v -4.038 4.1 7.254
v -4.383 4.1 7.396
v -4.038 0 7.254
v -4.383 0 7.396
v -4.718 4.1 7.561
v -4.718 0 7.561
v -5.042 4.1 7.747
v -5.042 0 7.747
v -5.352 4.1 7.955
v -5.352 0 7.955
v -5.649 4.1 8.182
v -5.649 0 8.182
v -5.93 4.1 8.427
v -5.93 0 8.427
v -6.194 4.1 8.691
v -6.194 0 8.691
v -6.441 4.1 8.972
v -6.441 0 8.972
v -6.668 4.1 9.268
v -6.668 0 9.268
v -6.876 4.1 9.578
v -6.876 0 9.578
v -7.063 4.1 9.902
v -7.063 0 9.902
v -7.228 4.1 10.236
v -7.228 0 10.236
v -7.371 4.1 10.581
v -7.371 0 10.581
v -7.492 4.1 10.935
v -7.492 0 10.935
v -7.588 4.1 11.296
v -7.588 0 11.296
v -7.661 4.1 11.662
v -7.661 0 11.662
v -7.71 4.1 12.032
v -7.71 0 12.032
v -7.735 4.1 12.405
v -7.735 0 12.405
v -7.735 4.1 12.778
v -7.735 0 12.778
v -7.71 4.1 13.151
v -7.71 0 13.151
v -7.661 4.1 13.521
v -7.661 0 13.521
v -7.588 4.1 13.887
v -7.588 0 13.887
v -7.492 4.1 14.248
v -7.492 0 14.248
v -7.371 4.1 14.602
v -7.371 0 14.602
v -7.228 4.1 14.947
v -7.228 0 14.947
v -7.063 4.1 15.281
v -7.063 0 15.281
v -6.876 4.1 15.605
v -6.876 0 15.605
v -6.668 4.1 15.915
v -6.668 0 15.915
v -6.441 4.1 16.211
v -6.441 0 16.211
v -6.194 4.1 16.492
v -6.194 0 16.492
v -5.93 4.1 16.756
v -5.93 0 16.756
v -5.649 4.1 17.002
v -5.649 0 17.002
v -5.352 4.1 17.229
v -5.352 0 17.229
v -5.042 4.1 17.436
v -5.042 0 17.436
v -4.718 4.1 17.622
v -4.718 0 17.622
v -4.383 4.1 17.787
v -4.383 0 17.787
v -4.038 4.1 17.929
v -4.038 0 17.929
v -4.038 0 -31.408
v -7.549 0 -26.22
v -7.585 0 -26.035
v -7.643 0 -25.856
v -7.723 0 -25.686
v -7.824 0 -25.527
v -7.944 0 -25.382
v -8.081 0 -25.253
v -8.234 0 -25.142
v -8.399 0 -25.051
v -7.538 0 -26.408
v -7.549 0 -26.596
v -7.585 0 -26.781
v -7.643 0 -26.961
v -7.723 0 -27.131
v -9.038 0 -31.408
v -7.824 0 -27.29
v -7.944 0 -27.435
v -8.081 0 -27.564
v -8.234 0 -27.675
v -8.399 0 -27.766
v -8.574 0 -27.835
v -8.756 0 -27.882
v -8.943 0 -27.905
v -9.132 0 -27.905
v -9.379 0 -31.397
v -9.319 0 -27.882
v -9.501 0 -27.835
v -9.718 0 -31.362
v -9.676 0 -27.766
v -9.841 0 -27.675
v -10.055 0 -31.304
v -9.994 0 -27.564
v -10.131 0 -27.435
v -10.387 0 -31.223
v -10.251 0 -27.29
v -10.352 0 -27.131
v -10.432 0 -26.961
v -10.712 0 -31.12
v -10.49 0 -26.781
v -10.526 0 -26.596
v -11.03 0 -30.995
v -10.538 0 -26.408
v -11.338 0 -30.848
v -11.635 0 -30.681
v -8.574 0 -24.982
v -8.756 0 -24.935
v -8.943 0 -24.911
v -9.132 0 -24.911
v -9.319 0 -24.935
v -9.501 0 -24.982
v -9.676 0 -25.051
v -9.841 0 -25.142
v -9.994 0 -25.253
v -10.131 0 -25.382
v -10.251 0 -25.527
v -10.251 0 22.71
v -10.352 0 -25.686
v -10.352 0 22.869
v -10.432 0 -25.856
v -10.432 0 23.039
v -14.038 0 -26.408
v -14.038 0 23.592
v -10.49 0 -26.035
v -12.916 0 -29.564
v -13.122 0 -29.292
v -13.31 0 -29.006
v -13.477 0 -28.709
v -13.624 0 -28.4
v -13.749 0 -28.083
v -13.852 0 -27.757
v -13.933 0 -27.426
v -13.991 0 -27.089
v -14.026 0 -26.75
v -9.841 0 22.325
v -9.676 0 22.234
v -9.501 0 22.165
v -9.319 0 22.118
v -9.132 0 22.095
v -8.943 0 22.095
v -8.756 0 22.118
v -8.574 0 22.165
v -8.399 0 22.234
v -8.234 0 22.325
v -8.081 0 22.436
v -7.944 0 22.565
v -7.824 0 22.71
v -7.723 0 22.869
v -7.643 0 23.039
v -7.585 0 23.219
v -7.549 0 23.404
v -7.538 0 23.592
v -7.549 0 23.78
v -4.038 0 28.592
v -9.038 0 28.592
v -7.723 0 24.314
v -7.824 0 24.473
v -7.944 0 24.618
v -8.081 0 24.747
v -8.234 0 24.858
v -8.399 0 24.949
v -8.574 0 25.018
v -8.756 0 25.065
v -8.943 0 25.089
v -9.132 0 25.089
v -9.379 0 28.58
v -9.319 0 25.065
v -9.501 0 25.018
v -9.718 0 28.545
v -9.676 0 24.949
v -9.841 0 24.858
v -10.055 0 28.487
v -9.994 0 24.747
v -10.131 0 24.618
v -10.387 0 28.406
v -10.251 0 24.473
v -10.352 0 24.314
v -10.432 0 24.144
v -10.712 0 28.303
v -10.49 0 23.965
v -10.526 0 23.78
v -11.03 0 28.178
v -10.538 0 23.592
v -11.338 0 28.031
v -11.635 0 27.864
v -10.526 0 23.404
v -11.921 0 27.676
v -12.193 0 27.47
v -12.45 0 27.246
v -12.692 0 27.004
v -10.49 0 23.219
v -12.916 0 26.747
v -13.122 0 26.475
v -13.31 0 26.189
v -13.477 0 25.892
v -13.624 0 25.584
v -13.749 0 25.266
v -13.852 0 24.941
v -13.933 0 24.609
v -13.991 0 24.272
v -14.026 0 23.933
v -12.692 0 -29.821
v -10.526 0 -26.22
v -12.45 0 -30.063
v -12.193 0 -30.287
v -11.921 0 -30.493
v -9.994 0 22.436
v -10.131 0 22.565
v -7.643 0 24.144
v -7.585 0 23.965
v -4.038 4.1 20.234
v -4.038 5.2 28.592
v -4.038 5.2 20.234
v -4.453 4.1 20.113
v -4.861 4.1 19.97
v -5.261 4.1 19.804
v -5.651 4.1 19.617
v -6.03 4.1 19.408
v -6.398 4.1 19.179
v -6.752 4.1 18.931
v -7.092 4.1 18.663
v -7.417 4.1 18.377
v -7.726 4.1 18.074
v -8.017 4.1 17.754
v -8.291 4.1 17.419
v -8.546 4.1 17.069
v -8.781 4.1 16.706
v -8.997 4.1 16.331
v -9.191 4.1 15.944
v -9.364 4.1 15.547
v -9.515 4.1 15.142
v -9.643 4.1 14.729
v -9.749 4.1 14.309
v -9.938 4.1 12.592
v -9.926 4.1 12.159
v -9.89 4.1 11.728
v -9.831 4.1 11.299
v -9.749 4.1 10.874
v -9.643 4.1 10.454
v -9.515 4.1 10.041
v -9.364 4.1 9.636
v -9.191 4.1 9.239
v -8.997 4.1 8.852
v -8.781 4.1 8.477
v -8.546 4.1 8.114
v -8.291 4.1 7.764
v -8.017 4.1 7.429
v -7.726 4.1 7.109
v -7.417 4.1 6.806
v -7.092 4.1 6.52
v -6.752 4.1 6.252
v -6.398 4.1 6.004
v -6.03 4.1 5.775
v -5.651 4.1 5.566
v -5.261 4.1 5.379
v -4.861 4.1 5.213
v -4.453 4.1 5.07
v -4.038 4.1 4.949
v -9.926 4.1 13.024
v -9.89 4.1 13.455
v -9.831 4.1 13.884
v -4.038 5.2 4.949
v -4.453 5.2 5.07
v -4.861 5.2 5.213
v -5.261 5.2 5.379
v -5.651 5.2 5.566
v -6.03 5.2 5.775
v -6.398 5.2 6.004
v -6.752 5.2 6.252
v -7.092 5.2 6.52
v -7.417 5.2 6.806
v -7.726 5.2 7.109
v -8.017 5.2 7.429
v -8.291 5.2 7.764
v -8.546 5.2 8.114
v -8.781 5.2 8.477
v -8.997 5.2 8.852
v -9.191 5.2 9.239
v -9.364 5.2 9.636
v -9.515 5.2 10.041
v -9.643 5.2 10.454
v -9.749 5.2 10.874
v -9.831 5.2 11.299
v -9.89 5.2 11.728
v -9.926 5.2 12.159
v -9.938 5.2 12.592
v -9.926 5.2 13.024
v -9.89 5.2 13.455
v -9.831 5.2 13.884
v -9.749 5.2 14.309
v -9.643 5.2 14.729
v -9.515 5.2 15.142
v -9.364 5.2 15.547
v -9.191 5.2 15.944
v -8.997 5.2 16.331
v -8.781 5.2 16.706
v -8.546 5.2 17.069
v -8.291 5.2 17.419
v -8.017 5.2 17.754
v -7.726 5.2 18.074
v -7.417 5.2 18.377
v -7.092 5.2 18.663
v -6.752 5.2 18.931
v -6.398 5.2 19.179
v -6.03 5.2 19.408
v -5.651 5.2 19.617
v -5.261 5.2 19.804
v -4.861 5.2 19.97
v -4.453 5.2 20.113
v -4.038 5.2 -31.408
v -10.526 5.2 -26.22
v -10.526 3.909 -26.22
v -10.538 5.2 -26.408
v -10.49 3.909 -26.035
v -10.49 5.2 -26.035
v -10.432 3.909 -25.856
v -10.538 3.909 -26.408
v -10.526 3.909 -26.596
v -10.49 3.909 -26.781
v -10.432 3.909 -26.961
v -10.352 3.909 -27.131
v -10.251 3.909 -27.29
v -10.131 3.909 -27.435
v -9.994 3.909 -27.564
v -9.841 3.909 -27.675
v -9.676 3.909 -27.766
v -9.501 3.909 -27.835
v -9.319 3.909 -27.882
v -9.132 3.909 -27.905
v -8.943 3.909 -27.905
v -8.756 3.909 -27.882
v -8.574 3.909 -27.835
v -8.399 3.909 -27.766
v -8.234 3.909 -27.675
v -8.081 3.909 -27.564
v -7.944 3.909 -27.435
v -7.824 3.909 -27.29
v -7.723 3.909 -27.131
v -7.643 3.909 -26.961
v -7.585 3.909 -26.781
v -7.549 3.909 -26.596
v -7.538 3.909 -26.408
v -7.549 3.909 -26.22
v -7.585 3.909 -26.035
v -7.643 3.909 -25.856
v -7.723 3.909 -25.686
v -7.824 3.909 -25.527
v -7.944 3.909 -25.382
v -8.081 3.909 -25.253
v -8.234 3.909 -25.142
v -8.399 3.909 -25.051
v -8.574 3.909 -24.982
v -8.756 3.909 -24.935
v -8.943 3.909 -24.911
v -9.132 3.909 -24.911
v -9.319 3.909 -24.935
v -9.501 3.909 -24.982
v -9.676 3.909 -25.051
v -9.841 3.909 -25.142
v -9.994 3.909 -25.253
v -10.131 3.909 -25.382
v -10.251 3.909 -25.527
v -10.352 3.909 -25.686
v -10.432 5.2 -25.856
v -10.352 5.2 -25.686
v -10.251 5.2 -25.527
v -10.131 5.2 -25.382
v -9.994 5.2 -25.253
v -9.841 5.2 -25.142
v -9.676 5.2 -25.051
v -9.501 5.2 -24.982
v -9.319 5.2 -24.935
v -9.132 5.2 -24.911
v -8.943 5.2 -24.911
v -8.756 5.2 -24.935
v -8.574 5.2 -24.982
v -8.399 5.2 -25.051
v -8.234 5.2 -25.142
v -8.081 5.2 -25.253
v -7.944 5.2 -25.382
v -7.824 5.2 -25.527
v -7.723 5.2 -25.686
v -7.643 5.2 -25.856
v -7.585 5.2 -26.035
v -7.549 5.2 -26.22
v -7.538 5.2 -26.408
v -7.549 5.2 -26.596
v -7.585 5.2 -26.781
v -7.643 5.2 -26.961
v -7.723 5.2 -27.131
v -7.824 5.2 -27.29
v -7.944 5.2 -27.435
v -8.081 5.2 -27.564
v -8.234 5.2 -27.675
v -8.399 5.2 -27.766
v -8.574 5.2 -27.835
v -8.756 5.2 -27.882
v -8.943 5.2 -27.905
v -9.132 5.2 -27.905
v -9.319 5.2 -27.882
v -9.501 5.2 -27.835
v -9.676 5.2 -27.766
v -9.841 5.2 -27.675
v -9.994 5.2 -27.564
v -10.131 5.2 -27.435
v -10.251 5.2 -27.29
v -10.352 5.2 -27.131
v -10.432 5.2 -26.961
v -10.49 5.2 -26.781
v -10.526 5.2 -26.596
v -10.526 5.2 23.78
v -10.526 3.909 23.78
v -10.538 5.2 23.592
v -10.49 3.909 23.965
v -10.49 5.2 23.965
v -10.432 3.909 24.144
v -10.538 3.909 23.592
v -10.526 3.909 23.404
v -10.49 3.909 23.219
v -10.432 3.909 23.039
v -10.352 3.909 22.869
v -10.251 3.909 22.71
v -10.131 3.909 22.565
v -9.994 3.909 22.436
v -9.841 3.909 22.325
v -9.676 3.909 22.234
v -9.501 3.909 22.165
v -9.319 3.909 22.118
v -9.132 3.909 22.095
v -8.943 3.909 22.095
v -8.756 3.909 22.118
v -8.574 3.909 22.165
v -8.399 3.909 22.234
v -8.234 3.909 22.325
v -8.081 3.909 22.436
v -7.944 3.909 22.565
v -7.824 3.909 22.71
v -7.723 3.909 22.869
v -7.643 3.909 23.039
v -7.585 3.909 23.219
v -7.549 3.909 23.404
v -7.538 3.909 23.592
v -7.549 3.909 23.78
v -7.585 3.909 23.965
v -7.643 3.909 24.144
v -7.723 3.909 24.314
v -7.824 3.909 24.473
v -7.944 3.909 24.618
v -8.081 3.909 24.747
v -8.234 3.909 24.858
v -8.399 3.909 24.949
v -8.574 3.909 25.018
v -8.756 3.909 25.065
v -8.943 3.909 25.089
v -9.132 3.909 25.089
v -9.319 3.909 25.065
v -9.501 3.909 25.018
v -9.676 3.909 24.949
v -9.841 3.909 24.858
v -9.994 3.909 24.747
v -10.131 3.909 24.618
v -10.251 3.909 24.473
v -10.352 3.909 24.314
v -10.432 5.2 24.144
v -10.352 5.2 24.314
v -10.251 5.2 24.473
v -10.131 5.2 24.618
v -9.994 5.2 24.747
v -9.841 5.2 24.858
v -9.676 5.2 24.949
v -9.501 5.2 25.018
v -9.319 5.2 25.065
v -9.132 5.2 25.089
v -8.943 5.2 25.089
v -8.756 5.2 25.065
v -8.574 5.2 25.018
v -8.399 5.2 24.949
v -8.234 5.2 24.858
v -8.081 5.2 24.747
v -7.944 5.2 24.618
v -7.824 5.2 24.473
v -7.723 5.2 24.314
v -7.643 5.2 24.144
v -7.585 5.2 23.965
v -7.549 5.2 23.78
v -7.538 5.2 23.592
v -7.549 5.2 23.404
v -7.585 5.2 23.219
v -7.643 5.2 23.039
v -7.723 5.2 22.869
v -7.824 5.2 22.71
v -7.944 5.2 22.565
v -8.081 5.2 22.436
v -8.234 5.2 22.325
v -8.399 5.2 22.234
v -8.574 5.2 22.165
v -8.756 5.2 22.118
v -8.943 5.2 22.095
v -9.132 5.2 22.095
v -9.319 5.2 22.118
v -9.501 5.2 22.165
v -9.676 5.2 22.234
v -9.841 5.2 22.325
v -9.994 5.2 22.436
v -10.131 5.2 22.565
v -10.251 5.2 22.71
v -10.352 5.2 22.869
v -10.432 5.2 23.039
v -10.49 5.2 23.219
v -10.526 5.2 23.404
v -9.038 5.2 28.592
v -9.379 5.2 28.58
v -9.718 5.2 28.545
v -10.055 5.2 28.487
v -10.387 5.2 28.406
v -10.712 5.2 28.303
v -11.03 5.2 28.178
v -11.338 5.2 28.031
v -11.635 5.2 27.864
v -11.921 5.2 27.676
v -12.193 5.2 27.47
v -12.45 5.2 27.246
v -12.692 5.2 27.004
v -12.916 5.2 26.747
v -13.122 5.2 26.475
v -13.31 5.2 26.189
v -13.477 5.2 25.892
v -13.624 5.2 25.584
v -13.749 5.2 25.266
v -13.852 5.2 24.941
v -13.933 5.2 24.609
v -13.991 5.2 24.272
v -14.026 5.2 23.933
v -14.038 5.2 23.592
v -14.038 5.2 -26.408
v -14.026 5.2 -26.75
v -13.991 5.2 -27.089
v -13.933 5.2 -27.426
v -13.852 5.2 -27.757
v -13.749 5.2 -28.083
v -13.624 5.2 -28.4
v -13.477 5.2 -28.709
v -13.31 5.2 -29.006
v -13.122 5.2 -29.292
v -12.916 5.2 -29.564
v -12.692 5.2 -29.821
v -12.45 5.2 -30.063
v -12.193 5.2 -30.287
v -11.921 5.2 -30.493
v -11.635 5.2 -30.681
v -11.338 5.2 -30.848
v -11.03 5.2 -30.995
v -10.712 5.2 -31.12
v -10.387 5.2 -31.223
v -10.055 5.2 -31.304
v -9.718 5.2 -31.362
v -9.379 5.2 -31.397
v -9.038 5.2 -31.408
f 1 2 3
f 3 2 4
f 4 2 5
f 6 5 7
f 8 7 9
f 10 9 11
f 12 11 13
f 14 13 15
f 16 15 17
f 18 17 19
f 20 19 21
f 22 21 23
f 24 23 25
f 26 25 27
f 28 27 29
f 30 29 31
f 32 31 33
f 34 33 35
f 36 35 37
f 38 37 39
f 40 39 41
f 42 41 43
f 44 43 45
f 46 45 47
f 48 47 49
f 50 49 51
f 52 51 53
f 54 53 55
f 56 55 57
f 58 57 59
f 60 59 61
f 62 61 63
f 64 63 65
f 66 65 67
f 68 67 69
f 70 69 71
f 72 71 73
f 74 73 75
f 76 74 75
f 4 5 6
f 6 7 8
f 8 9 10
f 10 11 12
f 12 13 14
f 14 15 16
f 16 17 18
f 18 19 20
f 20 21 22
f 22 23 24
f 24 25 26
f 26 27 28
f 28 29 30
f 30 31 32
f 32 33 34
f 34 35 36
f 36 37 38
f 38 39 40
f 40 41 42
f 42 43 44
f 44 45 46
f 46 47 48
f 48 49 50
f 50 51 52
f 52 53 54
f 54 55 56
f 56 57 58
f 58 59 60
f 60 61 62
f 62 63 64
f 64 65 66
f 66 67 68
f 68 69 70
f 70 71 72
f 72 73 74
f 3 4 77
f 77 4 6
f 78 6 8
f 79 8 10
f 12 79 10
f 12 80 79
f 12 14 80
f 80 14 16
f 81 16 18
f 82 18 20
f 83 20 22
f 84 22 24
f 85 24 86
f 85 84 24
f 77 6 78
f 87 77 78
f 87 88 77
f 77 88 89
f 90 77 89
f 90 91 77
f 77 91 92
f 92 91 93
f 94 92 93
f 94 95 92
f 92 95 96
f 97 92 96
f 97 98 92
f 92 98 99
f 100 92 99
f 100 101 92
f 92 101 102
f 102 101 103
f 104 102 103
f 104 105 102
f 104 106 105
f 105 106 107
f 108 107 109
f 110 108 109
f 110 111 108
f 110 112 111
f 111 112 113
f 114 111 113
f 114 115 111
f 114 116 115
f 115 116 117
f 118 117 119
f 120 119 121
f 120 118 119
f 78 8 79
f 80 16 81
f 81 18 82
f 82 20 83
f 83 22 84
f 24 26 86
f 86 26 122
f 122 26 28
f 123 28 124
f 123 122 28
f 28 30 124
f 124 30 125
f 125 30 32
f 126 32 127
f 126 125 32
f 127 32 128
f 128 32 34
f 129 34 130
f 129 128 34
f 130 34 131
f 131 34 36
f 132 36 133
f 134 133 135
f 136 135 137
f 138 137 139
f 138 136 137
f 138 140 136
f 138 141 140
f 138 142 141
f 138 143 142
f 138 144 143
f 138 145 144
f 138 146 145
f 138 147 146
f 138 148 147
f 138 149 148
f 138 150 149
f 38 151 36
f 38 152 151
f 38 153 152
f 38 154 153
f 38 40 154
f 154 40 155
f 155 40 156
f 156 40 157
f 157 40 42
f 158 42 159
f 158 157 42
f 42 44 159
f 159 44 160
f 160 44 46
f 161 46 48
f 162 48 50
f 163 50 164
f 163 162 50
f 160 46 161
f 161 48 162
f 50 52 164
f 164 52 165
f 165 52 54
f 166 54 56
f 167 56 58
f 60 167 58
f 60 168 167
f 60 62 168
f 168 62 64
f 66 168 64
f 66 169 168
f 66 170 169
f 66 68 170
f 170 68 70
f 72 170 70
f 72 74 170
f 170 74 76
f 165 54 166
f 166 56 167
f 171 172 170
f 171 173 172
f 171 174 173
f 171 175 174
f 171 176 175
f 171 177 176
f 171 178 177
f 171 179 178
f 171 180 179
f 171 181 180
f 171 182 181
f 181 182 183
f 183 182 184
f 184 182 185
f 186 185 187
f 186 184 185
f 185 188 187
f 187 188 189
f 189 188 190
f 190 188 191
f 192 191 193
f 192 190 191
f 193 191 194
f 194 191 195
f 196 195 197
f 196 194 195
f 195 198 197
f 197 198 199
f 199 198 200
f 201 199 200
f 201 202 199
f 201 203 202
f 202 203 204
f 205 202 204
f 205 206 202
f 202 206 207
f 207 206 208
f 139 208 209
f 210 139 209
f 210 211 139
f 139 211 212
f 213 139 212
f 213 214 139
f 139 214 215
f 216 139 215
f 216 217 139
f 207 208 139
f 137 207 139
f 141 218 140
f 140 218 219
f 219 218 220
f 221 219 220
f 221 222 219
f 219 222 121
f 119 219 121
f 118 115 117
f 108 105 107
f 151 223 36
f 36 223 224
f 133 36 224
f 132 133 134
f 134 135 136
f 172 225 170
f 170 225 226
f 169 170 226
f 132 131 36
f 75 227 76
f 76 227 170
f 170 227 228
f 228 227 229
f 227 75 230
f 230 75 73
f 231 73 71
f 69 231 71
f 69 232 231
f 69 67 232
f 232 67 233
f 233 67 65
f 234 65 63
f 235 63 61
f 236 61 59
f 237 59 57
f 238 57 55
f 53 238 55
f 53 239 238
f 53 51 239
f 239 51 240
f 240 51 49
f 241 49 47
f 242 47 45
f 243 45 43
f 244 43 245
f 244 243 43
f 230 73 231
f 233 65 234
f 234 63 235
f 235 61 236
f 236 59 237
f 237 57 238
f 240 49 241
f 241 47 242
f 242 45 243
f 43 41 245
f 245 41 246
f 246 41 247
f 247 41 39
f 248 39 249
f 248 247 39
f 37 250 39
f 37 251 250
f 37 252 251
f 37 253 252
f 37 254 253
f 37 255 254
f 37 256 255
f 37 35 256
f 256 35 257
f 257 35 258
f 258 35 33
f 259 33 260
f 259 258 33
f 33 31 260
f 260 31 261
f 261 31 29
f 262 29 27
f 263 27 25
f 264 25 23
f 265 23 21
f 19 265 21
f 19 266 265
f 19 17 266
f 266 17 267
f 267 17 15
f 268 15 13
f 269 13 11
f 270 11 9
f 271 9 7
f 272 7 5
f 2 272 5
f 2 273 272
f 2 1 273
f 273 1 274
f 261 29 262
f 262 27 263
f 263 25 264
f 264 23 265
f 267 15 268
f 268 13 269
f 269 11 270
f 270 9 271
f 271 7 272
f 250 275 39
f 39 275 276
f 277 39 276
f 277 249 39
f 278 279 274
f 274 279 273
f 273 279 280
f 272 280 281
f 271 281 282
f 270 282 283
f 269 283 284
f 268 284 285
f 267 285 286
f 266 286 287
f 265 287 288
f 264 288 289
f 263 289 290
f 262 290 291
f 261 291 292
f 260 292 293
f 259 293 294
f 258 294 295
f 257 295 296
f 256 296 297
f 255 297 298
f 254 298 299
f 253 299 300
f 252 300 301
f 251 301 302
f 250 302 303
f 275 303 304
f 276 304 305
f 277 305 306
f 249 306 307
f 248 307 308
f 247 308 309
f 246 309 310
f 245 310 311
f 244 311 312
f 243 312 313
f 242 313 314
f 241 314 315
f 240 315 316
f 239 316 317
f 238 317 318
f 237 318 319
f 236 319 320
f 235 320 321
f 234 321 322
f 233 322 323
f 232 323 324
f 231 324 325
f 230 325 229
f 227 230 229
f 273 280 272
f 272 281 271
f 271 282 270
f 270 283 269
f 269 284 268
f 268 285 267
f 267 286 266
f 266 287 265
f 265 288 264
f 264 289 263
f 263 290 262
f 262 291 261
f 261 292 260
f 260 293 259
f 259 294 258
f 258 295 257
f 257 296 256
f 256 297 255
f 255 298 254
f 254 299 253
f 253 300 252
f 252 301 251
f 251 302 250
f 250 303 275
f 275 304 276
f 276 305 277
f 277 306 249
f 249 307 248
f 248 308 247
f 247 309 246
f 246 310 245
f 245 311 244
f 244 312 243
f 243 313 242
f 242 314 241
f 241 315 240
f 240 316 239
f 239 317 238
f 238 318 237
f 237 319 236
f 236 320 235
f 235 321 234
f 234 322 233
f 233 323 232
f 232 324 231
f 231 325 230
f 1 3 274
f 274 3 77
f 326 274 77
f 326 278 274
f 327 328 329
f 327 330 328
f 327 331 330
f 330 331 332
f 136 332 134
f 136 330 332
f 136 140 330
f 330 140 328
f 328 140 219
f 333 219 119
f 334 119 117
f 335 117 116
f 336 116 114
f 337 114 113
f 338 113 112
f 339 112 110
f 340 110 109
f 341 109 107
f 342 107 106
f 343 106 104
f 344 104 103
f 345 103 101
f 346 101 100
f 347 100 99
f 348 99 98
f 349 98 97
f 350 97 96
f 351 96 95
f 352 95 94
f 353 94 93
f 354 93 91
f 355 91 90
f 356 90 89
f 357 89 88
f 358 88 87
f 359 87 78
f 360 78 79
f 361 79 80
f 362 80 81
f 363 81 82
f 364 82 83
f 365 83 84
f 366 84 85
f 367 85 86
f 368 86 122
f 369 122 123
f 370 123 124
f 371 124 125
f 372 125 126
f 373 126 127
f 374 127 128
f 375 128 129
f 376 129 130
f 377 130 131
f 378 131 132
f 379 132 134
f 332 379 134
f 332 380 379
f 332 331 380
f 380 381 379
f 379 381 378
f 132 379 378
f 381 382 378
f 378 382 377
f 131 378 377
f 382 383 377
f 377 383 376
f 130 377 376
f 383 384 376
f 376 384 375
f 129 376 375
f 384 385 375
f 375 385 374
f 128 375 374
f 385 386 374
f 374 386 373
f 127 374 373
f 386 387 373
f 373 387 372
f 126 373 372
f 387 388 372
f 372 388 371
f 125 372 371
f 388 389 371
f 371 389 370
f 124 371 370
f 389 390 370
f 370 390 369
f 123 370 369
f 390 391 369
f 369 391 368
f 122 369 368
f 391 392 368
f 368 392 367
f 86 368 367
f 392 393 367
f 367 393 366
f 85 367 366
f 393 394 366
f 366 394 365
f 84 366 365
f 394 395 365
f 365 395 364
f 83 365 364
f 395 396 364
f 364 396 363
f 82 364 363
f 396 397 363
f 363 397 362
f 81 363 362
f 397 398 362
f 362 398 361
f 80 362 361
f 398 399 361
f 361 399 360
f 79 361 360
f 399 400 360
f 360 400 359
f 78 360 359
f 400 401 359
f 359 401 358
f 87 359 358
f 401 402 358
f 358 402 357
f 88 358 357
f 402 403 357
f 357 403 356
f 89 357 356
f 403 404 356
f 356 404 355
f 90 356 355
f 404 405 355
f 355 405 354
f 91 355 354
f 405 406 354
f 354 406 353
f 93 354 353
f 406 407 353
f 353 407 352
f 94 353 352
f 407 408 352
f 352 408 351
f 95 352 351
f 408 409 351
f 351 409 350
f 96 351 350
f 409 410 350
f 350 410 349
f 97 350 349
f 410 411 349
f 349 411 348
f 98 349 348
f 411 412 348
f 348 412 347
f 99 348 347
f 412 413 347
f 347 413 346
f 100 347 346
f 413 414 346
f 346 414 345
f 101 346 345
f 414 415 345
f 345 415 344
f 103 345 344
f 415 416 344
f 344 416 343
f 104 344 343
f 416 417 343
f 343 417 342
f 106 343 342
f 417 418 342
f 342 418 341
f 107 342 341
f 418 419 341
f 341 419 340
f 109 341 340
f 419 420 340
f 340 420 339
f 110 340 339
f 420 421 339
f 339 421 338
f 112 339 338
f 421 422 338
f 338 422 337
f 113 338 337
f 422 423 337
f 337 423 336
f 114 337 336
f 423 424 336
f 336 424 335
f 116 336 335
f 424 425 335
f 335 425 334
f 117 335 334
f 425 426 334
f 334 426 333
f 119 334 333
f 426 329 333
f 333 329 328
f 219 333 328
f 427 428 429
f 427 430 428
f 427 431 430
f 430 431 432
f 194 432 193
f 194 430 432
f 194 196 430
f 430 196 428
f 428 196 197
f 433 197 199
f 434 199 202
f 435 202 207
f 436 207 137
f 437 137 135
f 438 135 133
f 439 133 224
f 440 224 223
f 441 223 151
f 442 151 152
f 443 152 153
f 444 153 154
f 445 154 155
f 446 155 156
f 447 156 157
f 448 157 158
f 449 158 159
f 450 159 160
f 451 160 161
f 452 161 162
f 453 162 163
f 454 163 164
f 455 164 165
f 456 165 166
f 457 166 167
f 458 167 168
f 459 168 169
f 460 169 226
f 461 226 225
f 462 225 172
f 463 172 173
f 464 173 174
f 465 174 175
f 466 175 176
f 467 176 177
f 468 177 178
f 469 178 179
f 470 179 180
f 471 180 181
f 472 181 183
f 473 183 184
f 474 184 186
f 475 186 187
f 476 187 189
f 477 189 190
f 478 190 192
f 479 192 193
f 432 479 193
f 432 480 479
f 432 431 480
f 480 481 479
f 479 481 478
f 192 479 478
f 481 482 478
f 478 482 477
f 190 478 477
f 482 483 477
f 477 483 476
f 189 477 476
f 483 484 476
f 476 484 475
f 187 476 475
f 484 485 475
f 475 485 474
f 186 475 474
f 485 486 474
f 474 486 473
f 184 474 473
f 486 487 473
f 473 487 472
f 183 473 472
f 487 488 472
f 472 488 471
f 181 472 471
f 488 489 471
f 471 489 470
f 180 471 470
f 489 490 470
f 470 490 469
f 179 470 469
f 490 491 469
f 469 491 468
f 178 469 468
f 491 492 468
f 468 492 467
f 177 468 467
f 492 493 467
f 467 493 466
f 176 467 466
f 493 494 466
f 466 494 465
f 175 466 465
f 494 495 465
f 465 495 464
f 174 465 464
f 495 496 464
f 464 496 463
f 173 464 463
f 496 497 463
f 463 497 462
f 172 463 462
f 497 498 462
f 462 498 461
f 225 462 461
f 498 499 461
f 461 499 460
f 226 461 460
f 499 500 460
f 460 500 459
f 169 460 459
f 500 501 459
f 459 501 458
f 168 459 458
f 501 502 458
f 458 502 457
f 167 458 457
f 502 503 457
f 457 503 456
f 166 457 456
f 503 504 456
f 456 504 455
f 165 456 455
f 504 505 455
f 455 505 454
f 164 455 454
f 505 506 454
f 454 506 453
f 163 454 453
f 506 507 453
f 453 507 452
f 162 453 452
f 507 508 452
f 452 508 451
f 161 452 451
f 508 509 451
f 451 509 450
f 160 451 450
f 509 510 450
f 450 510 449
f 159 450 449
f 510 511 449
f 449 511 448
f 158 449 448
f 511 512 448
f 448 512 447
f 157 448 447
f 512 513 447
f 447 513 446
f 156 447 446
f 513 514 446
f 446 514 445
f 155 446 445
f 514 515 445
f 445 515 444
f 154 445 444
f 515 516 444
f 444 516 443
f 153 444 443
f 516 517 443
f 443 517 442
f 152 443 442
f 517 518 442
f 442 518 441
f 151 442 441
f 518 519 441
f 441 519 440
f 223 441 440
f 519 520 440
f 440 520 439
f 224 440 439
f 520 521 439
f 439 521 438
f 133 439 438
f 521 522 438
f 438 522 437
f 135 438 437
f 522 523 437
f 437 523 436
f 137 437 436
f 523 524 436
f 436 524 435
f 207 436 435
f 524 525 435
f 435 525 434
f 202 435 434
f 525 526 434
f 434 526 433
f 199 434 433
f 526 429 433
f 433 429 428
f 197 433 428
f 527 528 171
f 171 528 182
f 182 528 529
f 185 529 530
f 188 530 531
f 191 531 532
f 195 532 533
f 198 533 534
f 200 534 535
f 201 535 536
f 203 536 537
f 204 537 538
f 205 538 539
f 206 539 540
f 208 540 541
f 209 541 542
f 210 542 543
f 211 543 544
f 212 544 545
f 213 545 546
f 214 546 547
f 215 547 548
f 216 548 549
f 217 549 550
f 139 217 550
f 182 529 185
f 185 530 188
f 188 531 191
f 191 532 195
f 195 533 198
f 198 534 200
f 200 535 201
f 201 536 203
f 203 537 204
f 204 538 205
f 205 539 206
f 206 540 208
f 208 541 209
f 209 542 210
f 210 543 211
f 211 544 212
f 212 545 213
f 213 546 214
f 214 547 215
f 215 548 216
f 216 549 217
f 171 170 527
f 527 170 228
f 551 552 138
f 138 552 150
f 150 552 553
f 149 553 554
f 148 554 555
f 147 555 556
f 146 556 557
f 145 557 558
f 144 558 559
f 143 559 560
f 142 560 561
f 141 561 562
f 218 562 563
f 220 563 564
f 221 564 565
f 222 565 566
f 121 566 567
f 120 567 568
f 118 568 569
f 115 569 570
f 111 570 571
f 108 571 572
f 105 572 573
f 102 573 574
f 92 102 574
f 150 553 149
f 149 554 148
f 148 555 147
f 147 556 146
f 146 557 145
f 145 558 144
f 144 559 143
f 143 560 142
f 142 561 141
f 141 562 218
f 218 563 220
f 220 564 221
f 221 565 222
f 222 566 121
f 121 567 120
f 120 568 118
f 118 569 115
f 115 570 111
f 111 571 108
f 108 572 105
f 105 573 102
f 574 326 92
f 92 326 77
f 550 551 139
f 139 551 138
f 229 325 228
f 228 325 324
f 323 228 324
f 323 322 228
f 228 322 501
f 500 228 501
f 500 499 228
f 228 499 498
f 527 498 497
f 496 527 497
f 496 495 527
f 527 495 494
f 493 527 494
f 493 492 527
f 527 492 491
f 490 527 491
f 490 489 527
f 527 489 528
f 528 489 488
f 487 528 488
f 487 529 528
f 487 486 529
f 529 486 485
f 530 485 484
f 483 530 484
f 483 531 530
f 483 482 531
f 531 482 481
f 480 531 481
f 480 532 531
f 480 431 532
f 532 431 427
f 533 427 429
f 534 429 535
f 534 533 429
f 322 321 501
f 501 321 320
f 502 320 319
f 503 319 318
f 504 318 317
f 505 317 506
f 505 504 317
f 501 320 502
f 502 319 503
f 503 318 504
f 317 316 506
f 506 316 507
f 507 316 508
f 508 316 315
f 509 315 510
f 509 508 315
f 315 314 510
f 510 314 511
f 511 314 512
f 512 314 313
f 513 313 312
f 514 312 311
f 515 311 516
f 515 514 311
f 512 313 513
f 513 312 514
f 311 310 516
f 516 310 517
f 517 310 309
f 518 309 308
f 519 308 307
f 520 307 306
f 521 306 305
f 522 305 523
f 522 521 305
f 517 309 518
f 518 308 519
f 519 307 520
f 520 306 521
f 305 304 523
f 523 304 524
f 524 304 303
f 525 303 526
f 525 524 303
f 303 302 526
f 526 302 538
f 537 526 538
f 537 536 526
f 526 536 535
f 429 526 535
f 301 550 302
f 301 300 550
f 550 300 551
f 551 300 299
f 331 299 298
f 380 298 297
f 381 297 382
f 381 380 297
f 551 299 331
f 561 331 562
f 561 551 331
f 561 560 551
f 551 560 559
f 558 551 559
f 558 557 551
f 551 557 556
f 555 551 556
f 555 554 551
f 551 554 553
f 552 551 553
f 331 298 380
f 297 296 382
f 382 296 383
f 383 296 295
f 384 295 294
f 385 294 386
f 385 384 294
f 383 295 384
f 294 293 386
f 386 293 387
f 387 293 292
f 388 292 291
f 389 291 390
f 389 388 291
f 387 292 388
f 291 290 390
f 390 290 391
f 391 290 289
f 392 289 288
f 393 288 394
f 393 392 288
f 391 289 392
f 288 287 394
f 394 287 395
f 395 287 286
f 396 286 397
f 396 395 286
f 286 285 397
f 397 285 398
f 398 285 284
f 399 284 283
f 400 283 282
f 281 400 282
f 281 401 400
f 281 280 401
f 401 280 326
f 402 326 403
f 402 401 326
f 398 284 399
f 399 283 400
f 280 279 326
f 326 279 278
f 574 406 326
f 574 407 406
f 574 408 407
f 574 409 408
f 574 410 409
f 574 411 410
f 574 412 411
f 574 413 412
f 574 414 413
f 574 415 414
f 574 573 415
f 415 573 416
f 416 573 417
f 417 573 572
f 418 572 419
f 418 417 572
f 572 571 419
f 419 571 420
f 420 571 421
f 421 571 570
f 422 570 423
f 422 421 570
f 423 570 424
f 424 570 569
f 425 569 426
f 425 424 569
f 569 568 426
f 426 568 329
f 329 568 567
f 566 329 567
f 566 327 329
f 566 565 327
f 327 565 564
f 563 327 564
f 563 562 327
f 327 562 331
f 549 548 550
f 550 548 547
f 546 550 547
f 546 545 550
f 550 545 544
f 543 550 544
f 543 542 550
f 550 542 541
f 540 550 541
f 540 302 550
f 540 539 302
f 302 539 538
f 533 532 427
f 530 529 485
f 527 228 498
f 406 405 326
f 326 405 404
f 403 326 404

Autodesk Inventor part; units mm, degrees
ref_plane "YZ Plane" through (0, 0, 0) normal (1, 0, 0) x (0, 1, 0)
ref_plane "XZ Plane" through (0, 0, 0) normal (0, 1, 0) x (-1, 0, 0)
ref_plane "XY Plane" through (0, 0, 0) normal (0, 0, 1) x (1, 0, 0)
sketch "Sketch1" plane through (0, 0, 0) normal (0, 1, 0) x (-1, 0, 0)
  line L0 (14.0376, 28.5915) -> (4.0376, 28.5915)
  line L1 (4.0376, 28.5915) -> (4.0376, -31.4085)
  line L2 (4.0376, -31.4085) -> (14.0376, -31.4085)
  line L3 (14.0376, -31.4085) -> (14.0376, 28.5915)
  point P0 (0, 0)
  dimension "d0" = 60
  dimension "d1" = 10
extrude "Extrusion1" add sketch "Sketch1" along normal blind 5.2
sketch "Sketch2" plane through (0, 0, 0) normal (0, -1, 0) x (1, 0, 0)
  arc A0 (-14.0376, -26.4085) -> (-9.0376, -31.4085) centre (-9.0376, -26.4085) ccw projected
  arc A1 (-9.0376, 28.5915) -> (-14.0376, 23.5915) centre (-9.0376, 23.5915) ccw projected
  circle A2 centre (-9.0376, -26.4085) radius 1.5 projected
  circle A3 centre (-9.0376, 23.5915) radius 1.5 projected
  point P0 (0, 0)
fillet "Fillet1" radius 5 2 edges at (-14.0376, 2.6, -31.4085) (-14.0376, 2.6, 28.5915)
hole "Hole1" at (-9.0376, 0, -26.4085) at (-9.0376, 0, 23.5915) direction (0, 1, 0) diameter 3 end through all
sketch "Sketch3" plane through (0, 5.2, 0) normal (0, 1, 0) x (1, 0, 0)
  circle A0 centre (-2.0376, -12.5915) radius 7.9 projected
  point P0 (0, 0)
extrude "Extrusion2" cut sketch "Sketch3" against normal blind 1.1
sketch "Sketch4" plane through (0, 4.1, 0) normal (0, 1, 0) x (1, 0, 0)
  circle A0 centre (-2.0376, -12.5915) radius 4.5 projected
  circle A1 centre (24.4624, -12.0915) radius 6 projected
  circle A2 centre (24.4624, 14.9085) radius 6 projected
  circle A3 centre (-2.0376, 15.4085) radius 4.5 projected
  circle A4 centre (30.9624, -22.5915) radius 3 projected
  circle A5 centre (-9.0376, 26.4085) radius 3 projected
  circle A6 centre (30.9624, 25.4085) radius 3 projected
  circle A7 centre (-9.0376, -23.5915) radius 3 projected
  arc A8 (4.9041, -26.2279) -> (6.8708, -28.5915) centre (6.8708, -26.5915) ccw projected
  line L0 (6.8708, -28.5915) -> (30.9624, -28.5915) projected
  arc A9 (30.9624, -28.5915) -> (35.9624, -23.5915) centre (30.9624, -23.5915) ccw projected
  line L1 (35.9624, -23.5915) -> (35.9624, 1.4085) projected
  line L2 (35.9624, 1.4085) -> (35.9624, 26.4085) projected
  arc A10 (35.9624, 26.4085) -> (30.9624, 31.4085) centre (30.9624, 26.4085) ccw projected
  line L3 (30.9624, 31.4085) -> (6.8708, 31.4085) projected
  arc A11 (6.8708, 31.4085) -> (4.9041, 29.0448) centre (6.8708, 29.4085) ccw projected
  arc A12 (-1.9792, 29.0448) -> (4.9041, 29.0448) centre (1.4624, 28.4085) ccw projected
  arc A13 (-1.9792, 29.0448) -> (-3.9459, 31.4085) centre (-3.9459, 29.4085) ccw projected
  line L4 (-3.9459, 31.4085) -> (-9.0376, 31.4085) projected
  arc A14 (-9.0376, 31.4085) -> (-14.0376, 26.4085) centre (-9.0376, 26.4085) ccw projected
  line L5 (-14.0376, 26.4085) -> (-14.0376, 1.4085) projected
  line L6 (-14.0376, 1.4085) -> (-14.0376, -23.5915) projected
  arc A15 (-14.0376, -23.5915) -> (-9.0376, -28.5915) centre (-9.0376, -23.5915) ccw projected
  line L7 (-9.0376, -28.5915) -> (-3.9459, -28.5915) projected
  arc A16 (-3.9459, -28.5915) -> (-1.9792, -26.2279) centre (-3.9459, -26.5915) ccw projected
  arc A17 (4.9041, -26.2279) -> (-1.9792, -26.2279) centre (1.4624, -25.5915) ccw projected
  circle A18 centre (-2.0376, -12.5915) radius 5.5 projected
  circle A19 centre (-2.0376, -12.5915) radius 5.7
  point P0 (0, 0)
  dimension "d14" = 0.2
extrude "Extrusion3" cut sketch "Sketch4" against normal through all contours A0 | A18 | A19
properties part number "Carro XY_trava_A" material "ABS Plastic"
